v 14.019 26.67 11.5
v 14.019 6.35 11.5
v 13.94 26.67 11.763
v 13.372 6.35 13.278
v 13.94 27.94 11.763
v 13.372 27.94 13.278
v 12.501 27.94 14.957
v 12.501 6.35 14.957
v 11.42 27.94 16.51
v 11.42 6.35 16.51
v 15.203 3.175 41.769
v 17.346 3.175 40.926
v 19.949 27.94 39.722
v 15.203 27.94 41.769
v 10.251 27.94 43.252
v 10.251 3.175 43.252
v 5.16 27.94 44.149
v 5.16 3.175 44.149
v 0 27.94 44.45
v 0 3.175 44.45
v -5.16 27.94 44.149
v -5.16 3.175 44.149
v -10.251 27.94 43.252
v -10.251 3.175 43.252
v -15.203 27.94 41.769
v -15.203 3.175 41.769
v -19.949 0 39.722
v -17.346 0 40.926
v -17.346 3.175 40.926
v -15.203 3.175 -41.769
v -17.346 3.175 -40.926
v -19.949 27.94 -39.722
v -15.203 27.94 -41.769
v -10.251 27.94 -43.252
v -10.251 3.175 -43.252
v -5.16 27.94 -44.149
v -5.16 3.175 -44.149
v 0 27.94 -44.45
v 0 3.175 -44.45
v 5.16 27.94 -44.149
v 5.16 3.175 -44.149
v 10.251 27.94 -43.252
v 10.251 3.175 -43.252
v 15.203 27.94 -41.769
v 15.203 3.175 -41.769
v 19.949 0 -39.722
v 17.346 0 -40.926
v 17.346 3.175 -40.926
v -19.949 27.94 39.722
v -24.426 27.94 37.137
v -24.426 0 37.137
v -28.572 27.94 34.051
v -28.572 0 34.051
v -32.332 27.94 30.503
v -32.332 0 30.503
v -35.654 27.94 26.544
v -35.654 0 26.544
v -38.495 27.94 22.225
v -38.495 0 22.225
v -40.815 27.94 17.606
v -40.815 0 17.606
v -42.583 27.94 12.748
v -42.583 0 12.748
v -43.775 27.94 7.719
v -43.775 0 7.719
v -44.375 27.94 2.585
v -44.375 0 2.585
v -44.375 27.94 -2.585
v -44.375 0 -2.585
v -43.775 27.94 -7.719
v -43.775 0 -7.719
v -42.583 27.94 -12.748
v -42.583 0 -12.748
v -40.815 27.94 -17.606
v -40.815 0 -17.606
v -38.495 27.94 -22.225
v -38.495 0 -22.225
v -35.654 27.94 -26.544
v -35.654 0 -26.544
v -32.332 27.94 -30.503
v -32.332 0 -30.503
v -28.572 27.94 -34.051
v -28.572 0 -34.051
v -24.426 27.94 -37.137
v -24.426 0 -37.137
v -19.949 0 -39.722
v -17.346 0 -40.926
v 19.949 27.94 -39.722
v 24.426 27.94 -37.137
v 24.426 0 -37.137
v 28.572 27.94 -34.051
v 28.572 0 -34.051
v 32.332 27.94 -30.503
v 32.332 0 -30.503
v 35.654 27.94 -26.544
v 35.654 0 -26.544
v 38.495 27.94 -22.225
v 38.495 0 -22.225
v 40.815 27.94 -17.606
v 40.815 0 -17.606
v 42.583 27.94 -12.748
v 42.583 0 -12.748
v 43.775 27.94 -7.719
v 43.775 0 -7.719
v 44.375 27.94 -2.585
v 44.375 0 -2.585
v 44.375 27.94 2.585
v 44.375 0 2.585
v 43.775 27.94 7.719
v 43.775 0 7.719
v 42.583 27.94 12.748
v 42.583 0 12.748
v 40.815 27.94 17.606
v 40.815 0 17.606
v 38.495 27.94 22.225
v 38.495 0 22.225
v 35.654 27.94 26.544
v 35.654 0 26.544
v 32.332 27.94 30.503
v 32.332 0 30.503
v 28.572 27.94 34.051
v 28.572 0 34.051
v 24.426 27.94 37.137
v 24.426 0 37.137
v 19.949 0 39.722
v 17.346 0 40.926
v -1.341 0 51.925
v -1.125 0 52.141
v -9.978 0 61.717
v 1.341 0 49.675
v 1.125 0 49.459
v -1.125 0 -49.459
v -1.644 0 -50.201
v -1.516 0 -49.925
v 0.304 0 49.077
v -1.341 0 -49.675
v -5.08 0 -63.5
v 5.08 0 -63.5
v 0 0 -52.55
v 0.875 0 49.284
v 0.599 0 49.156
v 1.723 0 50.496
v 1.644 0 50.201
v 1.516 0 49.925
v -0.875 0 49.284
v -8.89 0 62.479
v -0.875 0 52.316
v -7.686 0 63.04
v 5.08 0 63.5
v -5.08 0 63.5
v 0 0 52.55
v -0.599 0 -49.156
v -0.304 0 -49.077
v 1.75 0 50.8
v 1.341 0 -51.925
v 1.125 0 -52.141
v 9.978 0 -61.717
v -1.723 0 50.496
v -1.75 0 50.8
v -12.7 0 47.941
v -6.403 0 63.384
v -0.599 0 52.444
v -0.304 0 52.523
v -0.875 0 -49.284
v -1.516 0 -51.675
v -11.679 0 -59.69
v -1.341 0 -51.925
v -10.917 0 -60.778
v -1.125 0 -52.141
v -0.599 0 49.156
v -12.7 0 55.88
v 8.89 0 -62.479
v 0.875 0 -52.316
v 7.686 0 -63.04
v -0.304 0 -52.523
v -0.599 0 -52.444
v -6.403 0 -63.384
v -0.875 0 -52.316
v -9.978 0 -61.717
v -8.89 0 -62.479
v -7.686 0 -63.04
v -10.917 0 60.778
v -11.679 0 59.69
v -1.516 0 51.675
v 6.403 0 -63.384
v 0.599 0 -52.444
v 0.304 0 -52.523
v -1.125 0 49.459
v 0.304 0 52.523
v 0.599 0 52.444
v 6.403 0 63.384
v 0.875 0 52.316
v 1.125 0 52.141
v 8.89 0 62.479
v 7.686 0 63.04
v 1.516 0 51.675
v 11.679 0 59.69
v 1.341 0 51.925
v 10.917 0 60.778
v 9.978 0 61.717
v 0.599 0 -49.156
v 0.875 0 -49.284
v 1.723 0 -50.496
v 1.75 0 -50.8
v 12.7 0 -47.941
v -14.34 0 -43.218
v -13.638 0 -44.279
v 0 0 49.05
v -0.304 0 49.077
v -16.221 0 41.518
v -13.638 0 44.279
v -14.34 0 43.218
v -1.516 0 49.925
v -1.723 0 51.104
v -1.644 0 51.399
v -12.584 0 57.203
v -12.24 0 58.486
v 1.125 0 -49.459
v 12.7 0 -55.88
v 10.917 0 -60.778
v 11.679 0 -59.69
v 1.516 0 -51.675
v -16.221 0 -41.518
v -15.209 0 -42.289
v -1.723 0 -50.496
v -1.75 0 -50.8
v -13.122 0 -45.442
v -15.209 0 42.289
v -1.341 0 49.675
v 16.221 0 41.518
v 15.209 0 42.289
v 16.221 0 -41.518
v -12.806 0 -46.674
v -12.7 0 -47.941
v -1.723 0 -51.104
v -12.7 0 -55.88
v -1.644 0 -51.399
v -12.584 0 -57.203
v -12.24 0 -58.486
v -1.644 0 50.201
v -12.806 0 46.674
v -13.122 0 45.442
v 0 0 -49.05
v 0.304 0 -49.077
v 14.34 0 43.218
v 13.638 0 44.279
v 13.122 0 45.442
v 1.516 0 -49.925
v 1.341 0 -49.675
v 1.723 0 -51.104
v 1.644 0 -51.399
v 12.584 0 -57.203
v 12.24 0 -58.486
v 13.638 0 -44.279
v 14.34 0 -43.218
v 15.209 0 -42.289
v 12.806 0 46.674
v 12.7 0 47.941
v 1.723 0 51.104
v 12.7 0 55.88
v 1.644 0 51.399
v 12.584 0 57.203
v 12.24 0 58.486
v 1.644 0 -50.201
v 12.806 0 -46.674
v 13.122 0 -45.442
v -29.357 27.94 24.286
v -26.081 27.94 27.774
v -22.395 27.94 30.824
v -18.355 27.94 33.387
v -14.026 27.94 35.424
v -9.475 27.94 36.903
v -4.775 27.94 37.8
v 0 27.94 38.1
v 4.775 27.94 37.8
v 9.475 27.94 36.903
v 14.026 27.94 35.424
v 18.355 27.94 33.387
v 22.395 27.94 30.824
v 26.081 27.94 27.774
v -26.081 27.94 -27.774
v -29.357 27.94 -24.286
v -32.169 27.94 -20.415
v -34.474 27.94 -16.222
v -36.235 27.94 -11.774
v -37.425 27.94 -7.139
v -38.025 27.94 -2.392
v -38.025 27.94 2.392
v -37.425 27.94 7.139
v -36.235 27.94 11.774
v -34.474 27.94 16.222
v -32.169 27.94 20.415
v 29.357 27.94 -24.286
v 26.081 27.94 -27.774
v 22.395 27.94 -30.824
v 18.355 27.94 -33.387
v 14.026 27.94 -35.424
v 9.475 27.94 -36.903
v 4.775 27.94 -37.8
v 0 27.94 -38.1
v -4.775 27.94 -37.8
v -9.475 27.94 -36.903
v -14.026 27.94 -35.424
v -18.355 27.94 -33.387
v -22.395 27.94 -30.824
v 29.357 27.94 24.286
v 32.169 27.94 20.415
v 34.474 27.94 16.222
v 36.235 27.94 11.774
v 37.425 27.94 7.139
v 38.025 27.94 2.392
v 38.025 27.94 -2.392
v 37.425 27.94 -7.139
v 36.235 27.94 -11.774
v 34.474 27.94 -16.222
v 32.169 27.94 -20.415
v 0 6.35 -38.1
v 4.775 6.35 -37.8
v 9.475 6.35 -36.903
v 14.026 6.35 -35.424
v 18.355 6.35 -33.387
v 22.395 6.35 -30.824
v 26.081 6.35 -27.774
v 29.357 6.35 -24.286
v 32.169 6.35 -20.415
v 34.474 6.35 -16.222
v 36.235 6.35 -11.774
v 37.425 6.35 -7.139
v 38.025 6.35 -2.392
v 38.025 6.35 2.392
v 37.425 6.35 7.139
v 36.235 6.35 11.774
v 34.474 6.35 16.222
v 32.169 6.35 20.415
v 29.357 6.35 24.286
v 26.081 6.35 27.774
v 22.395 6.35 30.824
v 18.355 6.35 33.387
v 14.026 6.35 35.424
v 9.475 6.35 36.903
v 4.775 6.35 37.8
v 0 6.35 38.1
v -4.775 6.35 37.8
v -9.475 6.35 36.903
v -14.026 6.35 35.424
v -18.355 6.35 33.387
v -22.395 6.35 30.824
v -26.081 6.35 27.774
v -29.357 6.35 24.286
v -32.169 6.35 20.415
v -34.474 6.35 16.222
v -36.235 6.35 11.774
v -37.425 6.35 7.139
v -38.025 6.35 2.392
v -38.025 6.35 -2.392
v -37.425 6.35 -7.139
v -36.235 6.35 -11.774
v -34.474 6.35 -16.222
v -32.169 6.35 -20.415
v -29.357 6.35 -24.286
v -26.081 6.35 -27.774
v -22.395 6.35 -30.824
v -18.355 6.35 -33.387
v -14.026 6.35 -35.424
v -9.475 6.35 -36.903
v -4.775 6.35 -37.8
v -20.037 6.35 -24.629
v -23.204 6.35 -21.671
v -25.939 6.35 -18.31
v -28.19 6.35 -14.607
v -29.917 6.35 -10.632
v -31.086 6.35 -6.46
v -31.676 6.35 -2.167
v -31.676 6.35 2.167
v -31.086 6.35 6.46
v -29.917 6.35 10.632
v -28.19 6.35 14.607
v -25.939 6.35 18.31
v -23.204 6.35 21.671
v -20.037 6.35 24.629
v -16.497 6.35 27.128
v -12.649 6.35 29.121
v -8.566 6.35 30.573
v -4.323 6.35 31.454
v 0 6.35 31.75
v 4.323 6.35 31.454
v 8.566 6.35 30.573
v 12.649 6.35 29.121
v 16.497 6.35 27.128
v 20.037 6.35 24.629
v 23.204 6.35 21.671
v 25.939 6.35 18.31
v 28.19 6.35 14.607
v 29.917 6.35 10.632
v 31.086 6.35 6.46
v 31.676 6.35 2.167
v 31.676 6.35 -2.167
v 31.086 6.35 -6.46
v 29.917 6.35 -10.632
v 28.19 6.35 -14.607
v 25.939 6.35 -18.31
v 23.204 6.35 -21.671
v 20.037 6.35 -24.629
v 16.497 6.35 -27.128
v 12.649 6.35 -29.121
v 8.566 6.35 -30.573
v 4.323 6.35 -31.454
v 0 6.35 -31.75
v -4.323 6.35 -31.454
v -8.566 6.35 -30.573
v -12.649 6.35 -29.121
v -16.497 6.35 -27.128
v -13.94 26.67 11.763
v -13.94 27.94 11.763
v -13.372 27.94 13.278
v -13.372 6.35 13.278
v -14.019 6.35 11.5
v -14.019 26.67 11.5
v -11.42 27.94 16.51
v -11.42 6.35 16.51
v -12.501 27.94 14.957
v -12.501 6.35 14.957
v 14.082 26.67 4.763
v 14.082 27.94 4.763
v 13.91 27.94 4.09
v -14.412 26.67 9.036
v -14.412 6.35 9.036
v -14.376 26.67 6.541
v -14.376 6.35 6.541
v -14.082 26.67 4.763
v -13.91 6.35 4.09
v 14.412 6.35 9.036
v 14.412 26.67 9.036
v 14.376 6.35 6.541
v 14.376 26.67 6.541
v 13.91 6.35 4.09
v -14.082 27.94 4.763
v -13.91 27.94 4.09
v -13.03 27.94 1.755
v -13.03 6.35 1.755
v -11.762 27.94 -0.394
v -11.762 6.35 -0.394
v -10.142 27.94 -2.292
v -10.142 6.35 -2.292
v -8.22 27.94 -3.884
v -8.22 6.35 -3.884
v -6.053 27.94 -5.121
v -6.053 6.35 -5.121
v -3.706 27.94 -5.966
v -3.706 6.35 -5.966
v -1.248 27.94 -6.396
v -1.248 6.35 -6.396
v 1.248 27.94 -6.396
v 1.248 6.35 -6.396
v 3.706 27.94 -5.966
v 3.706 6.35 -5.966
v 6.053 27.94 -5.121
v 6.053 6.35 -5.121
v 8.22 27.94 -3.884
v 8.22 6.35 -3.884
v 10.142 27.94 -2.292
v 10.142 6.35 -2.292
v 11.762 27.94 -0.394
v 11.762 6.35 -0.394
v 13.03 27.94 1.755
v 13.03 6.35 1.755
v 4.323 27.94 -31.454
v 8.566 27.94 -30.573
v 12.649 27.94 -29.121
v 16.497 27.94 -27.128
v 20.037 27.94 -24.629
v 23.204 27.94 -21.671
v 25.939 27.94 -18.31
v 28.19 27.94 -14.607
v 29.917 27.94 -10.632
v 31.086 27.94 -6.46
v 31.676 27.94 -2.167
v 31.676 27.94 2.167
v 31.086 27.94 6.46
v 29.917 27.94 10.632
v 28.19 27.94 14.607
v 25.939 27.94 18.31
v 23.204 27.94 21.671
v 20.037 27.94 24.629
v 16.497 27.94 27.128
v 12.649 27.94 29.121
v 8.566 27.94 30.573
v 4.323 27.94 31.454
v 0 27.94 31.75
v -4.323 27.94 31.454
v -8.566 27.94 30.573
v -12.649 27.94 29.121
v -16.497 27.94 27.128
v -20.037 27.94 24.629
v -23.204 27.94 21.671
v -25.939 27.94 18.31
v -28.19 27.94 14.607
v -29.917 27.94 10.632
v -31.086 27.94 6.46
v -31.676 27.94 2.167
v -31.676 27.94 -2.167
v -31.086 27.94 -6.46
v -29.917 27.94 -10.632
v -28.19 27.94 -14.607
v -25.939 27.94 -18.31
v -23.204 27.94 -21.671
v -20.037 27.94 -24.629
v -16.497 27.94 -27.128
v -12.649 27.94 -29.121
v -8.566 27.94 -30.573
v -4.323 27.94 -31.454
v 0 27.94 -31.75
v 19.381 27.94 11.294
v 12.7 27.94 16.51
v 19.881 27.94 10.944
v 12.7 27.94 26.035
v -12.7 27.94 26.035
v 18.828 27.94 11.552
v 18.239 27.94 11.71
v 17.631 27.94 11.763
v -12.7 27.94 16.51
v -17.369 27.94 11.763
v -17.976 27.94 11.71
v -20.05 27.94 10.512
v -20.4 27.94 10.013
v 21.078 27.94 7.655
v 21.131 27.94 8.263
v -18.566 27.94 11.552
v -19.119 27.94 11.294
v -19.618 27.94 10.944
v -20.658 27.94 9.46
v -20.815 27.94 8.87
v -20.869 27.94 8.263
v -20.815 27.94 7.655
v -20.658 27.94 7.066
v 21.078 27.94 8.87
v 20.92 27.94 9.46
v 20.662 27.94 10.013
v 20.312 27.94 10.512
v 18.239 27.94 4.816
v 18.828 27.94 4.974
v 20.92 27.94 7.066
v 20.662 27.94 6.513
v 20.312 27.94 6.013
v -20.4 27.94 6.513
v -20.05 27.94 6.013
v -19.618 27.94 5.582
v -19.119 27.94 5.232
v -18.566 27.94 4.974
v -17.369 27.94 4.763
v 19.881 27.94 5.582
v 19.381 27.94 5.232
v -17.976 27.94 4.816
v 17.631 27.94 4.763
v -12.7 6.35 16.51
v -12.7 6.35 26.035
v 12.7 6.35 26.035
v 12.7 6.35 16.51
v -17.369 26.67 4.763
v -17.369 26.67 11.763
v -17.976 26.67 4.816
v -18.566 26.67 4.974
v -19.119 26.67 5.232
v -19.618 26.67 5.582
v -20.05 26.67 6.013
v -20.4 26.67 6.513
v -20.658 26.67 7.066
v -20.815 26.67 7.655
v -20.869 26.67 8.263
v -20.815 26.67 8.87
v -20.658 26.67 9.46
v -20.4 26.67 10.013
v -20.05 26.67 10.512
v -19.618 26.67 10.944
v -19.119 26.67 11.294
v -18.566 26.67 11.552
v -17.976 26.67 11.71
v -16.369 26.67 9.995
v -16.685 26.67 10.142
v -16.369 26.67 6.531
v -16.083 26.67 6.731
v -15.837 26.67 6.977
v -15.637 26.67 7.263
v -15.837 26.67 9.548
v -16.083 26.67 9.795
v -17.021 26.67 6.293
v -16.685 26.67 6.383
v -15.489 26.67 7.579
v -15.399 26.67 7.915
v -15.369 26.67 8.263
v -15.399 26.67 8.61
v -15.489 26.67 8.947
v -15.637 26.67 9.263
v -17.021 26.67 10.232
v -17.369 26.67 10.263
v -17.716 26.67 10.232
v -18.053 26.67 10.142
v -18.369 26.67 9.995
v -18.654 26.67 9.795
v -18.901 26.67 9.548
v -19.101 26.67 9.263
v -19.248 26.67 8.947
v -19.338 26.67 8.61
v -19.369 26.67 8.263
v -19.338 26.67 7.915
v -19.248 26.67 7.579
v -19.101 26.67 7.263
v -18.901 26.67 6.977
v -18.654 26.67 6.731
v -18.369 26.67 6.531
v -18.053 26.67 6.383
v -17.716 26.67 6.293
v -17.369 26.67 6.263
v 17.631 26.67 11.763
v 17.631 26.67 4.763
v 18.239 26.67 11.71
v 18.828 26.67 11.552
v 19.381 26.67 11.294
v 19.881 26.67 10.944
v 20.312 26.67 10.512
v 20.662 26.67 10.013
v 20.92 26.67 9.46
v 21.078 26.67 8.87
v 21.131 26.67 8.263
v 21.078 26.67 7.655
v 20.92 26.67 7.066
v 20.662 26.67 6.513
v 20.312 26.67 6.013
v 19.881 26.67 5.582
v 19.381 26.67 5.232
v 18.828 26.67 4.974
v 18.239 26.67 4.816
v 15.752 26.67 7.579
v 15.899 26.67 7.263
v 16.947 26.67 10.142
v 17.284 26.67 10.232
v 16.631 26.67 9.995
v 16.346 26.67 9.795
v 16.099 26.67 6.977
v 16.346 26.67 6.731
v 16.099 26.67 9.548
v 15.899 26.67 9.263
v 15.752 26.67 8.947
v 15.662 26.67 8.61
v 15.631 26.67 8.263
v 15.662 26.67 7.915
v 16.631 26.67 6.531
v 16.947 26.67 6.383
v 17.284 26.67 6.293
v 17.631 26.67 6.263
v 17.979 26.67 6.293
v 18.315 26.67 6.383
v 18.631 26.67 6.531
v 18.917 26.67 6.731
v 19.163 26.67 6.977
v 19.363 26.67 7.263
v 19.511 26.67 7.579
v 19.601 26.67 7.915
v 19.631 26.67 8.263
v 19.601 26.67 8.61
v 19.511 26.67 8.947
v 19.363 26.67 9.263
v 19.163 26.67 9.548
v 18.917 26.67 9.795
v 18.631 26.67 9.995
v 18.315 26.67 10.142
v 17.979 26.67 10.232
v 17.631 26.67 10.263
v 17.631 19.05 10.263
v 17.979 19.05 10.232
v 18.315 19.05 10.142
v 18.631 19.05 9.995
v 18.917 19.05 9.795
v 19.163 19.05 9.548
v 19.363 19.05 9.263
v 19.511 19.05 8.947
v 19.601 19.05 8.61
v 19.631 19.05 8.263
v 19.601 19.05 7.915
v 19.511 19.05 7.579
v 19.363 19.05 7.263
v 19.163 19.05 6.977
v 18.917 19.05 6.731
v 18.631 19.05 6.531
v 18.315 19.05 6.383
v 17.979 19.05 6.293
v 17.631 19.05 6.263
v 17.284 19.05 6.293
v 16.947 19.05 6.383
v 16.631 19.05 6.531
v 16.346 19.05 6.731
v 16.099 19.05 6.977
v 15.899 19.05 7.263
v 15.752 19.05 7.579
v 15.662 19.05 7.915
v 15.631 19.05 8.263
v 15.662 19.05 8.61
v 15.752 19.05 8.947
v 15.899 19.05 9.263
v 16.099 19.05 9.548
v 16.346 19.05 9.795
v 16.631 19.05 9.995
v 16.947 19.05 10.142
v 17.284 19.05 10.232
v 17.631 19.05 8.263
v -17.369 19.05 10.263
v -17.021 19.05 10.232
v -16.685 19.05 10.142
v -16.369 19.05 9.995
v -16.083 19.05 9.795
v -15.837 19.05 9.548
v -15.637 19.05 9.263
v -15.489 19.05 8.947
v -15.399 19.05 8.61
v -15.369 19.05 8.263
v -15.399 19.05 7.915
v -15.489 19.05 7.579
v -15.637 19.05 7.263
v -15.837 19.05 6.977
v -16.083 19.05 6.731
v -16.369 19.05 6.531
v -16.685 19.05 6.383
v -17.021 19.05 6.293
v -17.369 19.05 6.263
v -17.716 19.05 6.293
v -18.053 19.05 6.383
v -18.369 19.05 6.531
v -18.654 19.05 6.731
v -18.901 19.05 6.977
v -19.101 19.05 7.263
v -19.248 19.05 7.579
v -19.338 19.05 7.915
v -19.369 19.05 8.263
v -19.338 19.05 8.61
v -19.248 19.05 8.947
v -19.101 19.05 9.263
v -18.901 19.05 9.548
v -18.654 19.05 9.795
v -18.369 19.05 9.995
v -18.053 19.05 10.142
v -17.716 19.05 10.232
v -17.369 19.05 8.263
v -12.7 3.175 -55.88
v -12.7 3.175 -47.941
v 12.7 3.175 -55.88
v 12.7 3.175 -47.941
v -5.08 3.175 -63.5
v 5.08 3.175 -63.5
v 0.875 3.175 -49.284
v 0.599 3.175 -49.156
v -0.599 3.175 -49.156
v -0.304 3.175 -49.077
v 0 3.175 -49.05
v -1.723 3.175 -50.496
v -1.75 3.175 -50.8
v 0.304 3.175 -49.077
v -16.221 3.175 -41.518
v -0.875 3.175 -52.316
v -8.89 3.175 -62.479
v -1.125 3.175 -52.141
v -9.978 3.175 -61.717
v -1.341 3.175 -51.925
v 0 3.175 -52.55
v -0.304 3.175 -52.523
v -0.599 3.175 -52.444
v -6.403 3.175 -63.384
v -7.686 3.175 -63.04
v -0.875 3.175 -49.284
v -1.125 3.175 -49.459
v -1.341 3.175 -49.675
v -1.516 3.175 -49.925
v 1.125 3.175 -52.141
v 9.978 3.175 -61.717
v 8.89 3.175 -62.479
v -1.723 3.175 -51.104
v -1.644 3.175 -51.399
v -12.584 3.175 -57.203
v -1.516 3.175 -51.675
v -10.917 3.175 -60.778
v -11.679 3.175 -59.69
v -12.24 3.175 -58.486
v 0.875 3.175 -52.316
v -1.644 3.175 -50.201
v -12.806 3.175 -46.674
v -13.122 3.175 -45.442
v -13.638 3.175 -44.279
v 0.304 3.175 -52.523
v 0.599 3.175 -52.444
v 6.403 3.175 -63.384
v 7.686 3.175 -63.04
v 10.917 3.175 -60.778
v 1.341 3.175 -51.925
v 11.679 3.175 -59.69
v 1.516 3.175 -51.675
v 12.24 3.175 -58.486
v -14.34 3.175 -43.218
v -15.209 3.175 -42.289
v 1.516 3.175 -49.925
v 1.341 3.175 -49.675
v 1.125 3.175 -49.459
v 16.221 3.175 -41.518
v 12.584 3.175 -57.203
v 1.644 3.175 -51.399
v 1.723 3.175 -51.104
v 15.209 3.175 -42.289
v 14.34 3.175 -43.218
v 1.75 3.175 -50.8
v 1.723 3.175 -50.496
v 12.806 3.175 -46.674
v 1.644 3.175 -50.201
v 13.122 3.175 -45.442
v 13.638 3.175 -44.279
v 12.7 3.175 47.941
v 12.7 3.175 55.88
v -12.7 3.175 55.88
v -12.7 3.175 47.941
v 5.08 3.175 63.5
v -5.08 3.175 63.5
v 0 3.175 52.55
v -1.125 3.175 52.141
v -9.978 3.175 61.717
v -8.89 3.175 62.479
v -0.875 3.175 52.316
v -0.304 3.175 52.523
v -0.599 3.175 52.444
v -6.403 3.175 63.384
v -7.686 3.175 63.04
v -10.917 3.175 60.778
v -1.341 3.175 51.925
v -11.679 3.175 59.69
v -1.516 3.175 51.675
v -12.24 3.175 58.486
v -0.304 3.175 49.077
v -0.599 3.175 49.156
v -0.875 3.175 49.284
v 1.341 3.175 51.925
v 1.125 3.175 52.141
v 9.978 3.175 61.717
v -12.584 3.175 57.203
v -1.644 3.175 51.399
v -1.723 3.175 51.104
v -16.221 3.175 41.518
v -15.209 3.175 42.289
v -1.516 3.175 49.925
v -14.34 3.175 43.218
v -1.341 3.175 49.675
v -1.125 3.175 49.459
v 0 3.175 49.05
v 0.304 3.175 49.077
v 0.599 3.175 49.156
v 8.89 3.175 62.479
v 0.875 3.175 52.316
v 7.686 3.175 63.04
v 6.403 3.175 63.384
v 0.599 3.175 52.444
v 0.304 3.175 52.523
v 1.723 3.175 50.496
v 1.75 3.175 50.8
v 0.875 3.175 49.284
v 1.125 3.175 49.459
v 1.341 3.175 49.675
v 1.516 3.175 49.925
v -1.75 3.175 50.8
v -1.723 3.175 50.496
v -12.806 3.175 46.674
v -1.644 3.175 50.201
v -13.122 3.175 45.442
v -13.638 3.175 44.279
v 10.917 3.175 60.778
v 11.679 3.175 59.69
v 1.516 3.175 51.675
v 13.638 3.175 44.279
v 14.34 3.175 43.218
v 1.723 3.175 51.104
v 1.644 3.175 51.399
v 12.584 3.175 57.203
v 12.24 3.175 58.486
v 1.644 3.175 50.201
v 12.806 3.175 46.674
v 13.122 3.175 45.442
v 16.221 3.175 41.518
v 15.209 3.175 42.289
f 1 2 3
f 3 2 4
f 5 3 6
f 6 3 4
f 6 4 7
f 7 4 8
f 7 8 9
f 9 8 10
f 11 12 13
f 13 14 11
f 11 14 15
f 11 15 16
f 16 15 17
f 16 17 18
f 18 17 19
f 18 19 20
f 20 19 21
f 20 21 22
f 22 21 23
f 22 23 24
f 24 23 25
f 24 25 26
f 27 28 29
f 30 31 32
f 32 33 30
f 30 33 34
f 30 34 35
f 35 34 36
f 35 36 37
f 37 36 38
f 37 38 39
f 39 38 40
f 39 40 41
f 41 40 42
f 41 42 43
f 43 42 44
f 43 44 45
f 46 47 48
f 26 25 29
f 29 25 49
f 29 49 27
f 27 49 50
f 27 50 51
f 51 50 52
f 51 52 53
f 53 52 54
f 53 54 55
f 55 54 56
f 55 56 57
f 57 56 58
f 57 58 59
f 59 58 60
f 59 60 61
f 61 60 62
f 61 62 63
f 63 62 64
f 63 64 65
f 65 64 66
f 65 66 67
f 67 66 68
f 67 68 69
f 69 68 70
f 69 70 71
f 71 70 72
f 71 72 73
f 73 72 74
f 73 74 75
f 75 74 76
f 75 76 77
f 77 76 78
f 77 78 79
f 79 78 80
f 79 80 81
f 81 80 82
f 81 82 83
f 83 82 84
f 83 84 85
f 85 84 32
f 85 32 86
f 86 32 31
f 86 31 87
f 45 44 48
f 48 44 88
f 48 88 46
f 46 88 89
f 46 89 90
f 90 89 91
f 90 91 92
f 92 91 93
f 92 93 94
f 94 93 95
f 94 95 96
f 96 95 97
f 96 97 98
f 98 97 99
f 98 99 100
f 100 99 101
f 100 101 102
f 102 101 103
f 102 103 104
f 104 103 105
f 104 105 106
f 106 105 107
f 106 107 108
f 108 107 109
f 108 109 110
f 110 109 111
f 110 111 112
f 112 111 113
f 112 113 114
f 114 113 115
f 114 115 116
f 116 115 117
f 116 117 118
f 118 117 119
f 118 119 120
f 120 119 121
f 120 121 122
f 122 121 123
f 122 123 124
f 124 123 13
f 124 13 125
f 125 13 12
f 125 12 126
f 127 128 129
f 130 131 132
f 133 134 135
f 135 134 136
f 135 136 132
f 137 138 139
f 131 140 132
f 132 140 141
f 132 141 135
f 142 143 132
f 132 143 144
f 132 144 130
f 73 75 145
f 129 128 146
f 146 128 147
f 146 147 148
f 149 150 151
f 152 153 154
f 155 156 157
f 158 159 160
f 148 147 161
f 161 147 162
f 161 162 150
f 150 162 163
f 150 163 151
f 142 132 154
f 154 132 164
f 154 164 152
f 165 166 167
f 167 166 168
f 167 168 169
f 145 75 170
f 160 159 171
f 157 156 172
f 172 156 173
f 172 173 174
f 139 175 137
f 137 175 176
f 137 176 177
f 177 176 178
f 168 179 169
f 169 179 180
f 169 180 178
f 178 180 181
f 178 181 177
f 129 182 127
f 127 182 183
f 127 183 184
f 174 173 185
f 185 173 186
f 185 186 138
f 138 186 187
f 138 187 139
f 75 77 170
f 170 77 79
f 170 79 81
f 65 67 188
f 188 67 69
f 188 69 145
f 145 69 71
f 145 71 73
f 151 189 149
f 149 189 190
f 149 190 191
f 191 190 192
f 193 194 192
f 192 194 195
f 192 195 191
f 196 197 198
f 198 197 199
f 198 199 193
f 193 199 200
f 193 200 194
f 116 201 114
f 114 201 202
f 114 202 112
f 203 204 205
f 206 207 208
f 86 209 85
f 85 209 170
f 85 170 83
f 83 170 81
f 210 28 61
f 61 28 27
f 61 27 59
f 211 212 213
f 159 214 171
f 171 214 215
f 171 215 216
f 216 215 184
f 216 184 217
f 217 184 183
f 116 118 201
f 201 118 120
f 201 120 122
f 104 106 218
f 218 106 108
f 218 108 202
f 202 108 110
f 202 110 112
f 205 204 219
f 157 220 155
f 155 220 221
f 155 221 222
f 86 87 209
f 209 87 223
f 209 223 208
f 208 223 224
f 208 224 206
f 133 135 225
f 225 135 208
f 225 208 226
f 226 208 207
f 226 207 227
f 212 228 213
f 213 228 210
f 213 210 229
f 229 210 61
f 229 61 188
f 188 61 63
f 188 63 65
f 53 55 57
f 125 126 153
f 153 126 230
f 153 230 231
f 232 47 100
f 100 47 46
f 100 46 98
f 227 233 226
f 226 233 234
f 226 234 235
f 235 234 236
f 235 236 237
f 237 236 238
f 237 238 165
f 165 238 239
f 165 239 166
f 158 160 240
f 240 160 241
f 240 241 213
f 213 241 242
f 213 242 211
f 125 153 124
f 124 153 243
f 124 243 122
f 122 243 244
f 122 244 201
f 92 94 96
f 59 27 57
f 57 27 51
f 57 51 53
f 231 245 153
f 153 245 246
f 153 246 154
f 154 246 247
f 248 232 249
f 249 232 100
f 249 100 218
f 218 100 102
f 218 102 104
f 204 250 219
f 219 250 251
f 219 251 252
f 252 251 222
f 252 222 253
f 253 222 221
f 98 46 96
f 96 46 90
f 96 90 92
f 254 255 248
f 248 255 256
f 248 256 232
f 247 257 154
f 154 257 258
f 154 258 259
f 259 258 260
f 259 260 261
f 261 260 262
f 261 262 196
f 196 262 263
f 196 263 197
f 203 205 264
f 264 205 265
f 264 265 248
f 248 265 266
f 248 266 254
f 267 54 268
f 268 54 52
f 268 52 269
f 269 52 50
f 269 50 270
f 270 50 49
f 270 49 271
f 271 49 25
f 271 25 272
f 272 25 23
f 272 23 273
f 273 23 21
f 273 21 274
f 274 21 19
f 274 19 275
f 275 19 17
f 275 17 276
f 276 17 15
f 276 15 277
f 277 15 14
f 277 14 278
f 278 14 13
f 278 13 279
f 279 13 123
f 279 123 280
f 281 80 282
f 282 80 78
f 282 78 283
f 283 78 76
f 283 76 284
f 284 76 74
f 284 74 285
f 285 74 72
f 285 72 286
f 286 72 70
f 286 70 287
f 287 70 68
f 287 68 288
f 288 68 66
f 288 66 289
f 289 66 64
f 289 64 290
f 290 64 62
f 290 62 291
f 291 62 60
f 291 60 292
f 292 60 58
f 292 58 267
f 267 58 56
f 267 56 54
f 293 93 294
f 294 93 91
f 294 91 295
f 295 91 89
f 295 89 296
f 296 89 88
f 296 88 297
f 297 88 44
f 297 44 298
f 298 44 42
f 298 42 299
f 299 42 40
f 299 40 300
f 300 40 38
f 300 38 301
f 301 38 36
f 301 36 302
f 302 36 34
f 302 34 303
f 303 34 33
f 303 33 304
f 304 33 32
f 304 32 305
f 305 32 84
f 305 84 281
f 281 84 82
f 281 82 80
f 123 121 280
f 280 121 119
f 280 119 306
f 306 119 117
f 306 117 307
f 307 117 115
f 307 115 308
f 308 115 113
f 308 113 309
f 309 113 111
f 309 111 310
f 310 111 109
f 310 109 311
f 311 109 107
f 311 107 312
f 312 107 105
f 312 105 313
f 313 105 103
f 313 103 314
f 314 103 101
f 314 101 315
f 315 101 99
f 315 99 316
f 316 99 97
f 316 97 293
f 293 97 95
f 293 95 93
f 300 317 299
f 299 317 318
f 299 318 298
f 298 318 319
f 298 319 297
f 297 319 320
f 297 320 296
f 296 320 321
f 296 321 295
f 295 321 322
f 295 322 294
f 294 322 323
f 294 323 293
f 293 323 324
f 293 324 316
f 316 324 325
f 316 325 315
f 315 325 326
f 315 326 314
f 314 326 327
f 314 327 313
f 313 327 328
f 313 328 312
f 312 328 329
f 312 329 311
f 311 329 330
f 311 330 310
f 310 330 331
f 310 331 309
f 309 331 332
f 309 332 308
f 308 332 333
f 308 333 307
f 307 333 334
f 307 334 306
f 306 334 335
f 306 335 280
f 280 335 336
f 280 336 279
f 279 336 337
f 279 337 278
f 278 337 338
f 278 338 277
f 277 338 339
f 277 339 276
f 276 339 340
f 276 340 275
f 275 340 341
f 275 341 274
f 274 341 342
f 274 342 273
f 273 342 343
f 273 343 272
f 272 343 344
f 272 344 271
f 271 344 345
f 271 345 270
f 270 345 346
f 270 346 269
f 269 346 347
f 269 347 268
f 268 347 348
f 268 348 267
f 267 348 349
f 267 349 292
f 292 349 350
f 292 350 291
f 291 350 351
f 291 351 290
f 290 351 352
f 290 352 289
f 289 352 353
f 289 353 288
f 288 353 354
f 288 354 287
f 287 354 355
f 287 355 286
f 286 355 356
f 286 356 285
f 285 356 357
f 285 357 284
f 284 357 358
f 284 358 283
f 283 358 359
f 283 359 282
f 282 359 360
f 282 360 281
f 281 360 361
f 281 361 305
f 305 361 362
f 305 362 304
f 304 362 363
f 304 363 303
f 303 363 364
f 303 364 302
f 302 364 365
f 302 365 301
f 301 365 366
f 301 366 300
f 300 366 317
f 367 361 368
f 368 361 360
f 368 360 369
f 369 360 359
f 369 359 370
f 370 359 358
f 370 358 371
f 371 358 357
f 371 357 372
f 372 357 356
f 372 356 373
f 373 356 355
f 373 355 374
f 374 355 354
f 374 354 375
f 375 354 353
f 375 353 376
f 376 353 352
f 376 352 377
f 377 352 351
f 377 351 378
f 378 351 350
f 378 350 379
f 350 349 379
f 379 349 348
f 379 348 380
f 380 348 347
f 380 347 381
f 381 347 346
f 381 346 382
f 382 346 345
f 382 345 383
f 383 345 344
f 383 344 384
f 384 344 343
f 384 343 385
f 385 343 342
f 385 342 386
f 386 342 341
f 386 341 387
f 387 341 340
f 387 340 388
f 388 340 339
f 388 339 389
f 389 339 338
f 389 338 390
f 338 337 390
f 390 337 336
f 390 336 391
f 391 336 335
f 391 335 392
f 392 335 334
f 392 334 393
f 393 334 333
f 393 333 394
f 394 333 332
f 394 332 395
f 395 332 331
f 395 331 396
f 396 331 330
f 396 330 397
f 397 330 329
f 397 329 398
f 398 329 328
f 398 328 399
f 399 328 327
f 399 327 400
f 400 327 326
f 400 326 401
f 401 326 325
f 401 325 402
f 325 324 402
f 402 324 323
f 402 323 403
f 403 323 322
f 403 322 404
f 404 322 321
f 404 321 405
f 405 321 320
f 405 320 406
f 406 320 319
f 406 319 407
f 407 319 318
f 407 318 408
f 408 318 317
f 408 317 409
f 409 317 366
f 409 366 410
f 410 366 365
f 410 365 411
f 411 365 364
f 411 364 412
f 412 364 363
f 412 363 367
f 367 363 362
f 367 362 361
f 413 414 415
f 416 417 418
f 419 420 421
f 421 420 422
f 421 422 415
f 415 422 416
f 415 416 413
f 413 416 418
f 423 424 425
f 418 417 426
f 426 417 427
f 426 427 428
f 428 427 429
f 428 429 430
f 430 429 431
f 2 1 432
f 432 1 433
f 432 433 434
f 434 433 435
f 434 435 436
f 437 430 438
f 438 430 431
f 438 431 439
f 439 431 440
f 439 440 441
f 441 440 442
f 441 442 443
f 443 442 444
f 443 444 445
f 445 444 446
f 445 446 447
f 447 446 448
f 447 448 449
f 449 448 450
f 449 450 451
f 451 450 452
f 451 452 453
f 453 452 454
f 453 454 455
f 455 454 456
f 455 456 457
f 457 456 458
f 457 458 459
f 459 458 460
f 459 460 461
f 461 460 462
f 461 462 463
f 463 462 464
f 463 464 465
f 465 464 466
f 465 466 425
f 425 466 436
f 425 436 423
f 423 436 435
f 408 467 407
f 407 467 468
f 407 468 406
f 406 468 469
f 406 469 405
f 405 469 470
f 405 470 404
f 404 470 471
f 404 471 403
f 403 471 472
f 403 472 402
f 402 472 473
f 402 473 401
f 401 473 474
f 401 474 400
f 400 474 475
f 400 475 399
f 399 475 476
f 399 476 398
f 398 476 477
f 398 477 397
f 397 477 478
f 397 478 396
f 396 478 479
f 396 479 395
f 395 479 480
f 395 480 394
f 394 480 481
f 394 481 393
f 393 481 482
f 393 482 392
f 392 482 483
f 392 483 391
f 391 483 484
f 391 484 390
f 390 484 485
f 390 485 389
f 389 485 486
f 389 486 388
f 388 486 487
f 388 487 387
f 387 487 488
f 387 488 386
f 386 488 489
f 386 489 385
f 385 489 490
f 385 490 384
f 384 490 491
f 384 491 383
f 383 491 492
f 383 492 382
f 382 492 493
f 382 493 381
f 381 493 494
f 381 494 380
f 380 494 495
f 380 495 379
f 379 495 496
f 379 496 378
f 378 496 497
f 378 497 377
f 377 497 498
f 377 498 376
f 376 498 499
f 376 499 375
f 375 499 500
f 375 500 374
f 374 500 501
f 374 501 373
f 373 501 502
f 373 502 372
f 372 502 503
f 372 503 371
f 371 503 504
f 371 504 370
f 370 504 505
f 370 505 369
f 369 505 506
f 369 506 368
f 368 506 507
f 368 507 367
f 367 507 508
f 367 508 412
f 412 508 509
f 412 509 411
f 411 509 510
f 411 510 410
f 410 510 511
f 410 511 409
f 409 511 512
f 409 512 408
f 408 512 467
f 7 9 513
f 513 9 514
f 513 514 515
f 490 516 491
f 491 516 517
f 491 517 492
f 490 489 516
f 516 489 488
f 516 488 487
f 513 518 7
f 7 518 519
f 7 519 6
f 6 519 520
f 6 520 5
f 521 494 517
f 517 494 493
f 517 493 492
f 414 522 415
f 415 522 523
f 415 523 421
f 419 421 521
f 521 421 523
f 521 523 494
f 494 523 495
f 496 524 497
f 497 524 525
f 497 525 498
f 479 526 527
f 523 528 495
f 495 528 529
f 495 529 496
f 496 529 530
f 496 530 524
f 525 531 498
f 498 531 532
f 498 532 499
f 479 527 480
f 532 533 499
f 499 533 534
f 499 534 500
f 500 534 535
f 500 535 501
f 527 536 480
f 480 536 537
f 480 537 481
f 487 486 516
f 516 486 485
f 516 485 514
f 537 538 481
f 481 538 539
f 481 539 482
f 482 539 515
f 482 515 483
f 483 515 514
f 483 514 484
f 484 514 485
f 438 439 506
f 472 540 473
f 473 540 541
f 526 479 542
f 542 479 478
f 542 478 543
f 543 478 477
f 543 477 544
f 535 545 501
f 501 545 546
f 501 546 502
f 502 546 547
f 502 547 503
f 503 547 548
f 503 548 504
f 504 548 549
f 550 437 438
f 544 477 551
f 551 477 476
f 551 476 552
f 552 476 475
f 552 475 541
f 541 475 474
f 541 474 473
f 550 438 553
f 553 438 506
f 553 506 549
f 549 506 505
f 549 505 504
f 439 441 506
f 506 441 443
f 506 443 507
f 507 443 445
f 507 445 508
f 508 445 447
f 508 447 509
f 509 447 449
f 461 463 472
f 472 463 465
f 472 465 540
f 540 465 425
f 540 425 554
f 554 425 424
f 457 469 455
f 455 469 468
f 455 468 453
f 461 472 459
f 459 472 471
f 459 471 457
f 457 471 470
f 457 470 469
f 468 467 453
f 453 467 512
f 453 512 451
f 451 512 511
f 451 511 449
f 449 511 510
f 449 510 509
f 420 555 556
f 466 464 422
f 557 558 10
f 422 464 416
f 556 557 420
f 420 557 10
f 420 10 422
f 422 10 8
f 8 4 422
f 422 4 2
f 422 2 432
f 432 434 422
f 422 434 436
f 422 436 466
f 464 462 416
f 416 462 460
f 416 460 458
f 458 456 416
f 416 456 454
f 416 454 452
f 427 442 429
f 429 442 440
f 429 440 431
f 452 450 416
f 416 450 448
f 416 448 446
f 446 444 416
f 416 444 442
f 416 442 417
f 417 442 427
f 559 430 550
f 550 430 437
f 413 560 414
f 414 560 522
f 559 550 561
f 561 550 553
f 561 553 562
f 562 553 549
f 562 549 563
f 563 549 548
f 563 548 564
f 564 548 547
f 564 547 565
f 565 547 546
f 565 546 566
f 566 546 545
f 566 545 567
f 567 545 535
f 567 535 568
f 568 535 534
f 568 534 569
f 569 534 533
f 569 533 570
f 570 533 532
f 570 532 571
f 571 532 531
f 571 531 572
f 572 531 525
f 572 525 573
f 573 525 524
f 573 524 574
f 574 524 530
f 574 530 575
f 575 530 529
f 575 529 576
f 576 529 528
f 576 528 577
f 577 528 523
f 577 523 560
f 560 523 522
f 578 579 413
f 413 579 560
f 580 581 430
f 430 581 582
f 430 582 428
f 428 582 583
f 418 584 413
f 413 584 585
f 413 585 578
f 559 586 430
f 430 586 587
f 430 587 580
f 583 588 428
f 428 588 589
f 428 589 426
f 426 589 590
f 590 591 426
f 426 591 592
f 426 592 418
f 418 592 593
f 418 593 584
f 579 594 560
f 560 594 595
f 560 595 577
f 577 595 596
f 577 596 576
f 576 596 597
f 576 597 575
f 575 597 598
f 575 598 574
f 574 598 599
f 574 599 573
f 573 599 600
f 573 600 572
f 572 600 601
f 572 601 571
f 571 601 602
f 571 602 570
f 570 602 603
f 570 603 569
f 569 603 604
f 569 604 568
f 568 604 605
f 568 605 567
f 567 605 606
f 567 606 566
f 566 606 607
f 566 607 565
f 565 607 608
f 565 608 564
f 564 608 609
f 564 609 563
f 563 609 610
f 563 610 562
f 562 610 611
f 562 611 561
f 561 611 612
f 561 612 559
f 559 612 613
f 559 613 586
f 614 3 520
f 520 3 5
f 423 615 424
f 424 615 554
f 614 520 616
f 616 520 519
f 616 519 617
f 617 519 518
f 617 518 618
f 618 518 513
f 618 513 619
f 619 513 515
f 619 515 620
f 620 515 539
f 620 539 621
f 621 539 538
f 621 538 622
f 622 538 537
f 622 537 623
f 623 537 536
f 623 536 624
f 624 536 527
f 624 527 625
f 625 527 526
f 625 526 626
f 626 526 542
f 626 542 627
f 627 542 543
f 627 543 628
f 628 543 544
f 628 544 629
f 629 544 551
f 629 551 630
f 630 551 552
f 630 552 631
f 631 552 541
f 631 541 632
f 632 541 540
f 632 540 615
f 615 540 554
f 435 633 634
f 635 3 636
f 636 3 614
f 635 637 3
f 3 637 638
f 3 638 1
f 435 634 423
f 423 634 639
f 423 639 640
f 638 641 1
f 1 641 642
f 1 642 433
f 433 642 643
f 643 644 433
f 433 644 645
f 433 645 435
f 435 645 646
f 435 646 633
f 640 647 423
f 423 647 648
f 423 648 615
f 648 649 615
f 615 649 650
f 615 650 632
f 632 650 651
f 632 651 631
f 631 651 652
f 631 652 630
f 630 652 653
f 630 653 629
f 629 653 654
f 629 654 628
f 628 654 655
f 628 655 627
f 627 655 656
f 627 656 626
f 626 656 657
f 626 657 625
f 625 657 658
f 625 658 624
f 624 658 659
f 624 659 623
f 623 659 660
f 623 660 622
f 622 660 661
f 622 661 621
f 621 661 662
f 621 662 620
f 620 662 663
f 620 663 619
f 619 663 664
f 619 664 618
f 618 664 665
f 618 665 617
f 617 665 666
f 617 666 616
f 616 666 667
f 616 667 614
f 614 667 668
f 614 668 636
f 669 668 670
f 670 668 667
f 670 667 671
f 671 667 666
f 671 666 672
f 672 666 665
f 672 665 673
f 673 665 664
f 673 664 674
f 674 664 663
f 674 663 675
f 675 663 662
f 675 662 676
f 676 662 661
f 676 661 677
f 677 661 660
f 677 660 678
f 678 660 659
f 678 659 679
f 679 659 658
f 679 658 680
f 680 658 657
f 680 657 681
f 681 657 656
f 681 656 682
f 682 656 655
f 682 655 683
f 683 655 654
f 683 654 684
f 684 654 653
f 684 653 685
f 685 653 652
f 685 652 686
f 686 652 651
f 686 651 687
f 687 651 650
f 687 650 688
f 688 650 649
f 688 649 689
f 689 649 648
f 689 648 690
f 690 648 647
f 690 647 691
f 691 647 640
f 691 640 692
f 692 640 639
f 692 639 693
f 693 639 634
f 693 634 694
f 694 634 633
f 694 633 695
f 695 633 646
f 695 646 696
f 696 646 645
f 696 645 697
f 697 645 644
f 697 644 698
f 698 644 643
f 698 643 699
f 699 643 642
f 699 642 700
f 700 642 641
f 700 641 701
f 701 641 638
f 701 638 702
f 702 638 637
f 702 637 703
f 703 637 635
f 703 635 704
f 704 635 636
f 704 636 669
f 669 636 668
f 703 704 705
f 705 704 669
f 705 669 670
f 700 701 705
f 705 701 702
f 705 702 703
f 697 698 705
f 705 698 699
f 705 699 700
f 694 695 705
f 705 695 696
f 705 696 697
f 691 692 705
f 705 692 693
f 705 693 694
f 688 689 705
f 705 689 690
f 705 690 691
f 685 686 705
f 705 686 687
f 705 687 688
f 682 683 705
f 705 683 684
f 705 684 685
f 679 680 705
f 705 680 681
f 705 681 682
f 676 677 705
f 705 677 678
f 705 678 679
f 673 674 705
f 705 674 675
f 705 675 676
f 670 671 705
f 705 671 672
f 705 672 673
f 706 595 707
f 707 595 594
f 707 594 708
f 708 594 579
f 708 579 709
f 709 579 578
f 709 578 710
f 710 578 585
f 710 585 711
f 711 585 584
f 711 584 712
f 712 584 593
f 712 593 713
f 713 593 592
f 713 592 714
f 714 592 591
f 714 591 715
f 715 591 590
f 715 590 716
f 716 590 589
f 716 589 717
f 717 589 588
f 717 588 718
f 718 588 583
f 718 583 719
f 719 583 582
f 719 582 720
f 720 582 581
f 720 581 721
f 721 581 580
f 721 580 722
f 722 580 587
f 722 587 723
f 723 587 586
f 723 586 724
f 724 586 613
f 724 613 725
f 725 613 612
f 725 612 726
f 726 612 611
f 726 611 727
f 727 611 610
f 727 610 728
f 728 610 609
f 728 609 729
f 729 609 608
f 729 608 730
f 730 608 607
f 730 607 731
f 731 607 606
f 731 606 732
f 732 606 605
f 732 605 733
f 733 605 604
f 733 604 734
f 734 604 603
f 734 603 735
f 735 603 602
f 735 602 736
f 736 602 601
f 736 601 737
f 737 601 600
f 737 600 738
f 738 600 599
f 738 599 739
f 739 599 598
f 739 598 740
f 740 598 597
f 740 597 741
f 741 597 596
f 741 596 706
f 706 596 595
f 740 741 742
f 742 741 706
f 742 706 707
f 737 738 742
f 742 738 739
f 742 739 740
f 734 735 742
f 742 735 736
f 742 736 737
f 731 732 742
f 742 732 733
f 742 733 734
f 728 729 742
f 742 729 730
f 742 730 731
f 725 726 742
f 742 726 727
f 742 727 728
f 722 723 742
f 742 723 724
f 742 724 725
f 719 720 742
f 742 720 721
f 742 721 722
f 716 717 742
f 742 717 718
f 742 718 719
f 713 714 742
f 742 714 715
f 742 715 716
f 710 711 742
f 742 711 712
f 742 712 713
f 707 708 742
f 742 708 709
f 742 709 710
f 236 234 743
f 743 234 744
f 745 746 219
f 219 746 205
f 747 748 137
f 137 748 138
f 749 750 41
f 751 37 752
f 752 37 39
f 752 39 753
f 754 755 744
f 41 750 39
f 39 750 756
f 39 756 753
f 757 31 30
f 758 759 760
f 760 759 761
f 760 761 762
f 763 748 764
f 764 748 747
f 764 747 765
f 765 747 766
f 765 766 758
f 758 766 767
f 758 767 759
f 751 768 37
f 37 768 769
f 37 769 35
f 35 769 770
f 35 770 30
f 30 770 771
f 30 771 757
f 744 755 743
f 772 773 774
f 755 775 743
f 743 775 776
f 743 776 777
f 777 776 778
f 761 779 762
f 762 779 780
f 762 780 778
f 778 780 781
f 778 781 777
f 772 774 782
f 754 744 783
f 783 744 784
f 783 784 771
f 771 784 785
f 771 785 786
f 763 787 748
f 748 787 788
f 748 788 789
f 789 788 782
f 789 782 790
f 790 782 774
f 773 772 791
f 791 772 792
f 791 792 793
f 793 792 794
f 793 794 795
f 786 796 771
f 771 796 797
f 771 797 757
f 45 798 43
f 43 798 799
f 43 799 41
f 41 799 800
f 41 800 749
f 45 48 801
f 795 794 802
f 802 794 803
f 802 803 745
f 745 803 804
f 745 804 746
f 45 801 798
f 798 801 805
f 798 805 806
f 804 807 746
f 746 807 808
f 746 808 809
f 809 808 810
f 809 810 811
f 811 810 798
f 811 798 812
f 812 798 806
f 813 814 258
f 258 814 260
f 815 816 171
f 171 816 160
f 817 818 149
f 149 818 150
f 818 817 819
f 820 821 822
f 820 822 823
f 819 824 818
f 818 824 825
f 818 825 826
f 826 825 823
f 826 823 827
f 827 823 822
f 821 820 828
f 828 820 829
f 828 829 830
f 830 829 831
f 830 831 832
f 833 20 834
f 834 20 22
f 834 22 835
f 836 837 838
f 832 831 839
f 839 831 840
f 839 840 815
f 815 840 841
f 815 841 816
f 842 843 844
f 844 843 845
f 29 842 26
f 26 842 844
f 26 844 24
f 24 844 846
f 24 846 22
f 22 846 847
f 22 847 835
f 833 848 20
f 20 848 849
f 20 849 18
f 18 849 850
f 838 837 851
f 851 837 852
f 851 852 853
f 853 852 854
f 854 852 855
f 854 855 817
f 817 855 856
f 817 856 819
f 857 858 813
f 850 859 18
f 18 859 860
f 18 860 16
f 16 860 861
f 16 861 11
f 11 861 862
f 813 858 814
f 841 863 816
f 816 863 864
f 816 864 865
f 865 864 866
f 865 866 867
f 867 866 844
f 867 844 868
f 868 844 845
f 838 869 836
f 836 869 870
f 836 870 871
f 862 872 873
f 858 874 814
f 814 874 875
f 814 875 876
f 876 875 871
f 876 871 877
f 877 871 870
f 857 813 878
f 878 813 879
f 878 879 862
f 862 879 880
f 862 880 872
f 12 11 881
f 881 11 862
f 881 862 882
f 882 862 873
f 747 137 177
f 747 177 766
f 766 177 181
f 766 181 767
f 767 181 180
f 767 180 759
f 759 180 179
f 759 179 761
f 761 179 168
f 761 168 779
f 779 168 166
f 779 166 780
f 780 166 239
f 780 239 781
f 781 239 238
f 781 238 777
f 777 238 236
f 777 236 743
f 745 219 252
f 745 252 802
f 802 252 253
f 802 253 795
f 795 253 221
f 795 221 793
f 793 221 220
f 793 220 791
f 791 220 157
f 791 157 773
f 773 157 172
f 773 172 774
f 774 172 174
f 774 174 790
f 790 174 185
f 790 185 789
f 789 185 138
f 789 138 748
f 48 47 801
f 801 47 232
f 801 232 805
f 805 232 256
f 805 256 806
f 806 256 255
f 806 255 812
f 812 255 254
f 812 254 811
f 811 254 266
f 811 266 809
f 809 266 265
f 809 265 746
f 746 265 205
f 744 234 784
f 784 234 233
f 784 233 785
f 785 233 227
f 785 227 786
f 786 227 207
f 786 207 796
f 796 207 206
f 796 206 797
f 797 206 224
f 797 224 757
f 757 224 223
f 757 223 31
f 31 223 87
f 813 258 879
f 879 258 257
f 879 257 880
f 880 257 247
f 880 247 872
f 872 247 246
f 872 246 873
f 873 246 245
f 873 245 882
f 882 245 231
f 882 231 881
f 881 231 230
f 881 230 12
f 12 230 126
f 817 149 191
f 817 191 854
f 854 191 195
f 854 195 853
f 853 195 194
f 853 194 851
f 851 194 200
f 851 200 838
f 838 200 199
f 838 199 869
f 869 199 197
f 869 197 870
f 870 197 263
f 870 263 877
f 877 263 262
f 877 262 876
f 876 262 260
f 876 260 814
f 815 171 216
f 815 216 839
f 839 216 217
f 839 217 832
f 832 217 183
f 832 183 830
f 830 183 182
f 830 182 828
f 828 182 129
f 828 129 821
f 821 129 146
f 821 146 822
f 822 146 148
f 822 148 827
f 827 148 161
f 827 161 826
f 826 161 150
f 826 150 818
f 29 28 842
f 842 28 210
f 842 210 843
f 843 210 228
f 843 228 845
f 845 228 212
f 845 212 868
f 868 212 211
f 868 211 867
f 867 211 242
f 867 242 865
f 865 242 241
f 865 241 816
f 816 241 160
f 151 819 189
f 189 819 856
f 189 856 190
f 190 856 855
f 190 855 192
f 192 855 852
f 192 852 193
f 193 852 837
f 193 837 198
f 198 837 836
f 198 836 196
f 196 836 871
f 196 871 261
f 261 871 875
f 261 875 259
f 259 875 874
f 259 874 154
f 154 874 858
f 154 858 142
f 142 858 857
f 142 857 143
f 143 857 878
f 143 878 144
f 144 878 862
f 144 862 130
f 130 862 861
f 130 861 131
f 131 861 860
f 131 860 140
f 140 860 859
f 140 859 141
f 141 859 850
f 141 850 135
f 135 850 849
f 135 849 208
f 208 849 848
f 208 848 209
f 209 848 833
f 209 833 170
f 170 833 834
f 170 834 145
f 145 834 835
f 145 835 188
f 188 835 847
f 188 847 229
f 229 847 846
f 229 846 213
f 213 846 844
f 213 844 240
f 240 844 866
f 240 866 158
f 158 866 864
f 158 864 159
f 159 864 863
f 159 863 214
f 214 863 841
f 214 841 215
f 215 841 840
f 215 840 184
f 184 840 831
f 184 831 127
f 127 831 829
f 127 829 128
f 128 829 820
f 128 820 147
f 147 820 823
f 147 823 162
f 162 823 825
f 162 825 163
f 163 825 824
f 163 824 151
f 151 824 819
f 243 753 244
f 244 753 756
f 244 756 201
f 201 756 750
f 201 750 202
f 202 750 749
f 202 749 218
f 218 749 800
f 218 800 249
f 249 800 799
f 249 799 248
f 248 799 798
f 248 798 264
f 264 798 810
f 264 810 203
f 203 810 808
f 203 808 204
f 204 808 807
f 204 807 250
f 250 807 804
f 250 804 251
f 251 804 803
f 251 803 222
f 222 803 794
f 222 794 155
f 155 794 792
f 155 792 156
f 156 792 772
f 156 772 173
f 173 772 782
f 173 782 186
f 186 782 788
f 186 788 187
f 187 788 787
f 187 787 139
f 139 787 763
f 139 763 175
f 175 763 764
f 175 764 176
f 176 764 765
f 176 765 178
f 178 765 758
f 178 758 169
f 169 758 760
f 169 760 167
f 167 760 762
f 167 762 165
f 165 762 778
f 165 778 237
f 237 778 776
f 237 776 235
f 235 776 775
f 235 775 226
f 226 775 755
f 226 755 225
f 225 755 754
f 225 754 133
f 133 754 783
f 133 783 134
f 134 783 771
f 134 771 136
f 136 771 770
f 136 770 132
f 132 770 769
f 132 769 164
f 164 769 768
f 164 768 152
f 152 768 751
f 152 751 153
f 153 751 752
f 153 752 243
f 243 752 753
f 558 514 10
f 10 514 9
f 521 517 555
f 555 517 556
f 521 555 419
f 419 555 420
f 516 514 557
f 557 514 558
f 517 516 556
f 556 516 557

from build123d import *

# Parameters (mm, degrees)
SKETCH2_R           = 44.45
SKETCH2_R_2         = 38.1
BOSS_EXTRUDE1_DEPTH = 6.35
SKETCH2_3_R         = 44.45
SKETCH2_3_R_2       = 38.1
BOSS_EXTRUDE2_DEPTH = 27.94
SKETCH3_R           = 31.75
BOSS_EXTRUDE4_DEPTH = 21.59
CUT_EXTRUDE1_START  = -1.27
SKETCH4_R           = 2
CUT_EXTRUDE1_DEPTH  = 1.27
CUT_EXTRUDE2_START  = -8.89
SKETCH4_3_R         = 2
CUT_EXTRUDE2_DEPTH  = 8.89
SKETCH5_W           = 25.4
SKETCH5_H           = 25.4
BOSS_EXTRUDE6_DEPTH = 3.175
FILLET1_R           = 7.62
SKETCH7_R           = 1.75
CUT_EXTRUDE3_DEPTH  = 11.43
SKETCH8_W           = 25.4
SKETCH8_H           = 9.525
CUT_EXTRUDE4_DEPTH  = 21.59


with BuildPart() as part:
    # Sketch2 → Boss-Extrude1 (new body)
    # profile 1 of 2: a face of its own
    with BuildSketch(Plane(origin=(0, 0, 0), x_dir=(1, 0, 0), z_dir=(0, 1, 0))):
        with Locations(Location((0, 0, 0), (0, 0, 270))):
            Circle(SKETCH2_R)
        Circle(SKETCH2_R_2, mode=Mode.SUBTRACT)
    # profile 2 of 2: a face of its own
    with BuildSketch(Plane(origin=(0, 0, 0), x_dir=(1, 0, 0), z_dir=(0, 1, 0))):
        Circle(SKETCH2_R_2)
    extrude(amount=BOSS_EXTRUDE1_DEPTH)

    # Sketch2<3> → Boss-Extrude2 (add)
    with BuildSketch(Plane(origin=(0, 0, 0), x_dir=(1, 0, 0), z_dir=(0, 1, 0))):
        with Locations(Location((0, 0, 0), (0, 0, 270))):
            Circle(SKETCH2_3_R)
        with Locations(Location((0, 0, 0), (0, 0, 270))):
            Circle(SKETCH2_3_R_2, mode=Mode.SUBTRACT)
    extrude(amount=BOSS_EXTRUDE2_DEPTH)

    # Sketch3 → Boss-Extrude4 (add)
    # profile 1 of 3: a face of its own
    with BuildSketch(Plane(origin=(0, 6.35, 0), x_dir=(1, 0, 0), z_dir=(0, 1, 0))):
        with Locations(Location((0, 0, 0), (0, 0, 270))):
            Circle(SKETCH3_R)
        with BuildLine():
            ThreePointArc((17.528088934, -11.500057344), (21.028088934, -8.000057344), (17.528088934, -4.500057344))
            Line((17.528088934, -4.500057344), (14.019310816, -4.500057344))
            ThreePointArc((14.019310816, -4.500057344), (0, 6.449547348), (-14.019310816, -4.500057344))
            Line((-14.019310816, -4.500057344), (-17.471911066, -4.500057344))
            ThreePointArc((-17.471911066, -4.500057344), (-20.971911066, -8.000057344), (-17.471911066, -11.500057344))
            Line((-17.471911066, -11.500057344), (-14.019310816, -11.500057344))
            ThreePointArc((-14.019310816, -11.500057344), (0, -22.010555024), (14.019310816, -11.500057344))
            Line((14.019310816, -11.500057344), (17.528088934, -11.500057344))
        make_face(mode=Mode.SUBTRACT)
    # profile 2 of 3: a face of its own
    with BuildSketch(Plane(origin=(0, 6.35, 0), x_dir=(1, 0, 0), z_dir=(0, 1, 0))):
        with BuildLine():
            ThreePointArc((-14.019310816, -4.500057344), (-14.449604692, -8.000057344), (-14.019310816, -11.500057344))
            Line((-14.019310816, -11.500057344), (-17.471911066, -11.500057344))
            ThreePointArc((-17.471911066, -11.500057344), (-20.971911066, -8.000057344), (-17.471911066, -4.500057344))
            Line((-17.471911066, -4.500057344), (-14.019310816, -4.500057344))
        make_face()
    # profile 3 of 3: a face of its own
    with BuildSketch(Plane(origin=(0, 6.35, 0), x_dir=(1, 0, 0), z_dir=(0, 1, 0))):
        with BuildLine():
            Line((17.528088934, -4.500057344), (14.019310816, -4.500057344))
            ThreePointArc((14.019310816, -4.500057344), (14.449604692, -8.000057344), (14.019310816, -11.500057344))
            Line((14.019310816, -11.500057344), (17.528088934, -11.500057344))
            ThreePointArc((17.528088934, -11.500057344), (21.028088934, -8.000057344), (17.528088934, -4.500057344))
        make_face()
    extrude(amount=BOSS_EXTRUDE4_DEPTH)

    # Sketch4 → Cut-Extrude1 (cut)
    # profile 1 of 2: a face of its own
    with BuildSketch(Plane(origin=(0, 27.94, 0), x_dir=(1, 0, 0), z_dir=(0, 1, 0)).offset(CUT_EXTRUDE1_START)):
        with BuildLine():
            Line((17.631328518, -4.762679984), (14.082274801, -4.762679984))
            ThreePointArc((14.082274801, -4.762679984), (14.448973734, -8.135089853), (14.019310816, -11.500057344))
            ThreePointArc((14.019310816, -11.500057344), (13.980234208, -11.631555081), (13.939924214, -11.762679984))
            Line((13.939924214, -11.762679984), (17.631328518, -11.762679984))
            ThreePointArc((17.631328518, -11.762679984), (21.131328518, -8.262679984), (17.631328518, -4.762679984))
        make_face()
        with Locations(Location((17.631328518, -8.262679984, 0), (0, 0, 270))):
            Circle(SKETCH4_R, mode=Mode.SUBTRACT)
    # profile 2 of 2: a face of its own
    with BuildSketch(Plane(origin=(0, 27.94, 0), x_dir=(1, 0, 0), z_dir=(0, 1, 0)).offset(CUT_EXTRUDE1_START)):
        with BuildLine():
            ThreePointArc((-14.019310816, -11.500057344), (-14.448973734, -8.135089853), (-14.082274801, -4.762679984))
            Line((-14.082274801, -4.762679984), (-17.368671482, -4.762679984))
            ThreePointArc((-17.368671482, -4.762679984), (-20.868671482, -8.262679984), (-17.368671482, -11.762679984))
            Line((-17.368671482, -11.762679984), (-13.939924214, -11.762679984))
            ThreePointArc((-13.939924214, -11.762679984), (-13.980234208, -11.631555081), (-14.019310816, -11.500057344))
        make_face()
        with Locations(Location((-17.368671482, -8.262679984, 0), (0, 0, 270))):
            Circle(SKETCH4_R, mode=Mode.SUBTRACT)
    extrude(amount=CUT_EXTRUDE1_DEPTH, mode=Mode.SUBTRACT)

    # Sketch4<3> → Cut-Extrude2 (cut)
    with BuildSketch(Plane(origin=(0, 27.94, 0), x_dir=(1, 0, 0), z_dir=(0, 1, 0)).offset(CUT_EXTRUDE2_START)):
        with Locations(Location((-17.368671482, -8.262679984, 0), (0, 0, 270))):
            Circle(SKETCH4_3_R)
        with Locations(Location((17.631328518, -8.262679984, 0), (0, 0, 270))):
            Circle(SKETCH4_3_R)
    extrude(amount=CUT_EXTRUDE2_DEPTH, mode=Mode.SUBTRACT)

    # Sketch5 → Boss-Extrude6 (add)
    with BuildSketch(Plane.XZ):
        with Locations((0, 50.8)):
            Rectangle(SKETCH5_W, SKETCH5_H)
        with Locations((0, -50.8)):
            Rectangle(SKETCH5_W, SKETCH5_H)
    extrude(amount=-BOSS_EXTRUDE6_DEPTH)

    # Fillet1
    fillet1_edges = [part.edges().sort_by_distance(p)[0] for p in [
        (12.7, 1.5875, 63.5),
        (-12.7, 1.5875, 63.5),
        (12.7, 1.5875, 42.597094971),
        (-12.7, 1.5875, 42.597094971),
        (-12.7, 1.5875, -63.5),
        (12.7, 1.5875, -63.5),
        (-12.7, 1.5875, -42.597094971),
        (12.7, 1.5875, -42.597094971),
    ]]
    fillet(fillet1_edges, radius=FILLET1_R)

    # Sketch7 → Cut-Extrude3 (cut)
    with BuildSketch(Plane(origin=(0, 3.175, 0), x_dir=(1, 0, 0), z_dir=(0, 1, 0))):
        with Locations(Location((0, 50.8, 0), (0, 0, 270))):
            Circle(SKETCH7_R)
        with Locations(Location((0, -50.8, 0), (0, 0, 270))):
            Circle(SKETCH7_R)
    extrude(amount=-CUT_EXTRUDE3_DEPTH, mode=Mode.SUBTRACT)

    # Sketch8 → Cut-Extrude4 (cut)
    with BuildSketch(Plane(origin=(0, 27.94, 0), x_dir=(1, 0, 0), z_dir=(0, 1, 0))):
        with Locations((0, -21.2725)):
            Rectangle(SKETCH8_W, SKETCH8_H)
    extrude(amount=-CUT_EXTRUDE4_DEPTH, mode=Mode.SUBTRACT)


solid = part.part
